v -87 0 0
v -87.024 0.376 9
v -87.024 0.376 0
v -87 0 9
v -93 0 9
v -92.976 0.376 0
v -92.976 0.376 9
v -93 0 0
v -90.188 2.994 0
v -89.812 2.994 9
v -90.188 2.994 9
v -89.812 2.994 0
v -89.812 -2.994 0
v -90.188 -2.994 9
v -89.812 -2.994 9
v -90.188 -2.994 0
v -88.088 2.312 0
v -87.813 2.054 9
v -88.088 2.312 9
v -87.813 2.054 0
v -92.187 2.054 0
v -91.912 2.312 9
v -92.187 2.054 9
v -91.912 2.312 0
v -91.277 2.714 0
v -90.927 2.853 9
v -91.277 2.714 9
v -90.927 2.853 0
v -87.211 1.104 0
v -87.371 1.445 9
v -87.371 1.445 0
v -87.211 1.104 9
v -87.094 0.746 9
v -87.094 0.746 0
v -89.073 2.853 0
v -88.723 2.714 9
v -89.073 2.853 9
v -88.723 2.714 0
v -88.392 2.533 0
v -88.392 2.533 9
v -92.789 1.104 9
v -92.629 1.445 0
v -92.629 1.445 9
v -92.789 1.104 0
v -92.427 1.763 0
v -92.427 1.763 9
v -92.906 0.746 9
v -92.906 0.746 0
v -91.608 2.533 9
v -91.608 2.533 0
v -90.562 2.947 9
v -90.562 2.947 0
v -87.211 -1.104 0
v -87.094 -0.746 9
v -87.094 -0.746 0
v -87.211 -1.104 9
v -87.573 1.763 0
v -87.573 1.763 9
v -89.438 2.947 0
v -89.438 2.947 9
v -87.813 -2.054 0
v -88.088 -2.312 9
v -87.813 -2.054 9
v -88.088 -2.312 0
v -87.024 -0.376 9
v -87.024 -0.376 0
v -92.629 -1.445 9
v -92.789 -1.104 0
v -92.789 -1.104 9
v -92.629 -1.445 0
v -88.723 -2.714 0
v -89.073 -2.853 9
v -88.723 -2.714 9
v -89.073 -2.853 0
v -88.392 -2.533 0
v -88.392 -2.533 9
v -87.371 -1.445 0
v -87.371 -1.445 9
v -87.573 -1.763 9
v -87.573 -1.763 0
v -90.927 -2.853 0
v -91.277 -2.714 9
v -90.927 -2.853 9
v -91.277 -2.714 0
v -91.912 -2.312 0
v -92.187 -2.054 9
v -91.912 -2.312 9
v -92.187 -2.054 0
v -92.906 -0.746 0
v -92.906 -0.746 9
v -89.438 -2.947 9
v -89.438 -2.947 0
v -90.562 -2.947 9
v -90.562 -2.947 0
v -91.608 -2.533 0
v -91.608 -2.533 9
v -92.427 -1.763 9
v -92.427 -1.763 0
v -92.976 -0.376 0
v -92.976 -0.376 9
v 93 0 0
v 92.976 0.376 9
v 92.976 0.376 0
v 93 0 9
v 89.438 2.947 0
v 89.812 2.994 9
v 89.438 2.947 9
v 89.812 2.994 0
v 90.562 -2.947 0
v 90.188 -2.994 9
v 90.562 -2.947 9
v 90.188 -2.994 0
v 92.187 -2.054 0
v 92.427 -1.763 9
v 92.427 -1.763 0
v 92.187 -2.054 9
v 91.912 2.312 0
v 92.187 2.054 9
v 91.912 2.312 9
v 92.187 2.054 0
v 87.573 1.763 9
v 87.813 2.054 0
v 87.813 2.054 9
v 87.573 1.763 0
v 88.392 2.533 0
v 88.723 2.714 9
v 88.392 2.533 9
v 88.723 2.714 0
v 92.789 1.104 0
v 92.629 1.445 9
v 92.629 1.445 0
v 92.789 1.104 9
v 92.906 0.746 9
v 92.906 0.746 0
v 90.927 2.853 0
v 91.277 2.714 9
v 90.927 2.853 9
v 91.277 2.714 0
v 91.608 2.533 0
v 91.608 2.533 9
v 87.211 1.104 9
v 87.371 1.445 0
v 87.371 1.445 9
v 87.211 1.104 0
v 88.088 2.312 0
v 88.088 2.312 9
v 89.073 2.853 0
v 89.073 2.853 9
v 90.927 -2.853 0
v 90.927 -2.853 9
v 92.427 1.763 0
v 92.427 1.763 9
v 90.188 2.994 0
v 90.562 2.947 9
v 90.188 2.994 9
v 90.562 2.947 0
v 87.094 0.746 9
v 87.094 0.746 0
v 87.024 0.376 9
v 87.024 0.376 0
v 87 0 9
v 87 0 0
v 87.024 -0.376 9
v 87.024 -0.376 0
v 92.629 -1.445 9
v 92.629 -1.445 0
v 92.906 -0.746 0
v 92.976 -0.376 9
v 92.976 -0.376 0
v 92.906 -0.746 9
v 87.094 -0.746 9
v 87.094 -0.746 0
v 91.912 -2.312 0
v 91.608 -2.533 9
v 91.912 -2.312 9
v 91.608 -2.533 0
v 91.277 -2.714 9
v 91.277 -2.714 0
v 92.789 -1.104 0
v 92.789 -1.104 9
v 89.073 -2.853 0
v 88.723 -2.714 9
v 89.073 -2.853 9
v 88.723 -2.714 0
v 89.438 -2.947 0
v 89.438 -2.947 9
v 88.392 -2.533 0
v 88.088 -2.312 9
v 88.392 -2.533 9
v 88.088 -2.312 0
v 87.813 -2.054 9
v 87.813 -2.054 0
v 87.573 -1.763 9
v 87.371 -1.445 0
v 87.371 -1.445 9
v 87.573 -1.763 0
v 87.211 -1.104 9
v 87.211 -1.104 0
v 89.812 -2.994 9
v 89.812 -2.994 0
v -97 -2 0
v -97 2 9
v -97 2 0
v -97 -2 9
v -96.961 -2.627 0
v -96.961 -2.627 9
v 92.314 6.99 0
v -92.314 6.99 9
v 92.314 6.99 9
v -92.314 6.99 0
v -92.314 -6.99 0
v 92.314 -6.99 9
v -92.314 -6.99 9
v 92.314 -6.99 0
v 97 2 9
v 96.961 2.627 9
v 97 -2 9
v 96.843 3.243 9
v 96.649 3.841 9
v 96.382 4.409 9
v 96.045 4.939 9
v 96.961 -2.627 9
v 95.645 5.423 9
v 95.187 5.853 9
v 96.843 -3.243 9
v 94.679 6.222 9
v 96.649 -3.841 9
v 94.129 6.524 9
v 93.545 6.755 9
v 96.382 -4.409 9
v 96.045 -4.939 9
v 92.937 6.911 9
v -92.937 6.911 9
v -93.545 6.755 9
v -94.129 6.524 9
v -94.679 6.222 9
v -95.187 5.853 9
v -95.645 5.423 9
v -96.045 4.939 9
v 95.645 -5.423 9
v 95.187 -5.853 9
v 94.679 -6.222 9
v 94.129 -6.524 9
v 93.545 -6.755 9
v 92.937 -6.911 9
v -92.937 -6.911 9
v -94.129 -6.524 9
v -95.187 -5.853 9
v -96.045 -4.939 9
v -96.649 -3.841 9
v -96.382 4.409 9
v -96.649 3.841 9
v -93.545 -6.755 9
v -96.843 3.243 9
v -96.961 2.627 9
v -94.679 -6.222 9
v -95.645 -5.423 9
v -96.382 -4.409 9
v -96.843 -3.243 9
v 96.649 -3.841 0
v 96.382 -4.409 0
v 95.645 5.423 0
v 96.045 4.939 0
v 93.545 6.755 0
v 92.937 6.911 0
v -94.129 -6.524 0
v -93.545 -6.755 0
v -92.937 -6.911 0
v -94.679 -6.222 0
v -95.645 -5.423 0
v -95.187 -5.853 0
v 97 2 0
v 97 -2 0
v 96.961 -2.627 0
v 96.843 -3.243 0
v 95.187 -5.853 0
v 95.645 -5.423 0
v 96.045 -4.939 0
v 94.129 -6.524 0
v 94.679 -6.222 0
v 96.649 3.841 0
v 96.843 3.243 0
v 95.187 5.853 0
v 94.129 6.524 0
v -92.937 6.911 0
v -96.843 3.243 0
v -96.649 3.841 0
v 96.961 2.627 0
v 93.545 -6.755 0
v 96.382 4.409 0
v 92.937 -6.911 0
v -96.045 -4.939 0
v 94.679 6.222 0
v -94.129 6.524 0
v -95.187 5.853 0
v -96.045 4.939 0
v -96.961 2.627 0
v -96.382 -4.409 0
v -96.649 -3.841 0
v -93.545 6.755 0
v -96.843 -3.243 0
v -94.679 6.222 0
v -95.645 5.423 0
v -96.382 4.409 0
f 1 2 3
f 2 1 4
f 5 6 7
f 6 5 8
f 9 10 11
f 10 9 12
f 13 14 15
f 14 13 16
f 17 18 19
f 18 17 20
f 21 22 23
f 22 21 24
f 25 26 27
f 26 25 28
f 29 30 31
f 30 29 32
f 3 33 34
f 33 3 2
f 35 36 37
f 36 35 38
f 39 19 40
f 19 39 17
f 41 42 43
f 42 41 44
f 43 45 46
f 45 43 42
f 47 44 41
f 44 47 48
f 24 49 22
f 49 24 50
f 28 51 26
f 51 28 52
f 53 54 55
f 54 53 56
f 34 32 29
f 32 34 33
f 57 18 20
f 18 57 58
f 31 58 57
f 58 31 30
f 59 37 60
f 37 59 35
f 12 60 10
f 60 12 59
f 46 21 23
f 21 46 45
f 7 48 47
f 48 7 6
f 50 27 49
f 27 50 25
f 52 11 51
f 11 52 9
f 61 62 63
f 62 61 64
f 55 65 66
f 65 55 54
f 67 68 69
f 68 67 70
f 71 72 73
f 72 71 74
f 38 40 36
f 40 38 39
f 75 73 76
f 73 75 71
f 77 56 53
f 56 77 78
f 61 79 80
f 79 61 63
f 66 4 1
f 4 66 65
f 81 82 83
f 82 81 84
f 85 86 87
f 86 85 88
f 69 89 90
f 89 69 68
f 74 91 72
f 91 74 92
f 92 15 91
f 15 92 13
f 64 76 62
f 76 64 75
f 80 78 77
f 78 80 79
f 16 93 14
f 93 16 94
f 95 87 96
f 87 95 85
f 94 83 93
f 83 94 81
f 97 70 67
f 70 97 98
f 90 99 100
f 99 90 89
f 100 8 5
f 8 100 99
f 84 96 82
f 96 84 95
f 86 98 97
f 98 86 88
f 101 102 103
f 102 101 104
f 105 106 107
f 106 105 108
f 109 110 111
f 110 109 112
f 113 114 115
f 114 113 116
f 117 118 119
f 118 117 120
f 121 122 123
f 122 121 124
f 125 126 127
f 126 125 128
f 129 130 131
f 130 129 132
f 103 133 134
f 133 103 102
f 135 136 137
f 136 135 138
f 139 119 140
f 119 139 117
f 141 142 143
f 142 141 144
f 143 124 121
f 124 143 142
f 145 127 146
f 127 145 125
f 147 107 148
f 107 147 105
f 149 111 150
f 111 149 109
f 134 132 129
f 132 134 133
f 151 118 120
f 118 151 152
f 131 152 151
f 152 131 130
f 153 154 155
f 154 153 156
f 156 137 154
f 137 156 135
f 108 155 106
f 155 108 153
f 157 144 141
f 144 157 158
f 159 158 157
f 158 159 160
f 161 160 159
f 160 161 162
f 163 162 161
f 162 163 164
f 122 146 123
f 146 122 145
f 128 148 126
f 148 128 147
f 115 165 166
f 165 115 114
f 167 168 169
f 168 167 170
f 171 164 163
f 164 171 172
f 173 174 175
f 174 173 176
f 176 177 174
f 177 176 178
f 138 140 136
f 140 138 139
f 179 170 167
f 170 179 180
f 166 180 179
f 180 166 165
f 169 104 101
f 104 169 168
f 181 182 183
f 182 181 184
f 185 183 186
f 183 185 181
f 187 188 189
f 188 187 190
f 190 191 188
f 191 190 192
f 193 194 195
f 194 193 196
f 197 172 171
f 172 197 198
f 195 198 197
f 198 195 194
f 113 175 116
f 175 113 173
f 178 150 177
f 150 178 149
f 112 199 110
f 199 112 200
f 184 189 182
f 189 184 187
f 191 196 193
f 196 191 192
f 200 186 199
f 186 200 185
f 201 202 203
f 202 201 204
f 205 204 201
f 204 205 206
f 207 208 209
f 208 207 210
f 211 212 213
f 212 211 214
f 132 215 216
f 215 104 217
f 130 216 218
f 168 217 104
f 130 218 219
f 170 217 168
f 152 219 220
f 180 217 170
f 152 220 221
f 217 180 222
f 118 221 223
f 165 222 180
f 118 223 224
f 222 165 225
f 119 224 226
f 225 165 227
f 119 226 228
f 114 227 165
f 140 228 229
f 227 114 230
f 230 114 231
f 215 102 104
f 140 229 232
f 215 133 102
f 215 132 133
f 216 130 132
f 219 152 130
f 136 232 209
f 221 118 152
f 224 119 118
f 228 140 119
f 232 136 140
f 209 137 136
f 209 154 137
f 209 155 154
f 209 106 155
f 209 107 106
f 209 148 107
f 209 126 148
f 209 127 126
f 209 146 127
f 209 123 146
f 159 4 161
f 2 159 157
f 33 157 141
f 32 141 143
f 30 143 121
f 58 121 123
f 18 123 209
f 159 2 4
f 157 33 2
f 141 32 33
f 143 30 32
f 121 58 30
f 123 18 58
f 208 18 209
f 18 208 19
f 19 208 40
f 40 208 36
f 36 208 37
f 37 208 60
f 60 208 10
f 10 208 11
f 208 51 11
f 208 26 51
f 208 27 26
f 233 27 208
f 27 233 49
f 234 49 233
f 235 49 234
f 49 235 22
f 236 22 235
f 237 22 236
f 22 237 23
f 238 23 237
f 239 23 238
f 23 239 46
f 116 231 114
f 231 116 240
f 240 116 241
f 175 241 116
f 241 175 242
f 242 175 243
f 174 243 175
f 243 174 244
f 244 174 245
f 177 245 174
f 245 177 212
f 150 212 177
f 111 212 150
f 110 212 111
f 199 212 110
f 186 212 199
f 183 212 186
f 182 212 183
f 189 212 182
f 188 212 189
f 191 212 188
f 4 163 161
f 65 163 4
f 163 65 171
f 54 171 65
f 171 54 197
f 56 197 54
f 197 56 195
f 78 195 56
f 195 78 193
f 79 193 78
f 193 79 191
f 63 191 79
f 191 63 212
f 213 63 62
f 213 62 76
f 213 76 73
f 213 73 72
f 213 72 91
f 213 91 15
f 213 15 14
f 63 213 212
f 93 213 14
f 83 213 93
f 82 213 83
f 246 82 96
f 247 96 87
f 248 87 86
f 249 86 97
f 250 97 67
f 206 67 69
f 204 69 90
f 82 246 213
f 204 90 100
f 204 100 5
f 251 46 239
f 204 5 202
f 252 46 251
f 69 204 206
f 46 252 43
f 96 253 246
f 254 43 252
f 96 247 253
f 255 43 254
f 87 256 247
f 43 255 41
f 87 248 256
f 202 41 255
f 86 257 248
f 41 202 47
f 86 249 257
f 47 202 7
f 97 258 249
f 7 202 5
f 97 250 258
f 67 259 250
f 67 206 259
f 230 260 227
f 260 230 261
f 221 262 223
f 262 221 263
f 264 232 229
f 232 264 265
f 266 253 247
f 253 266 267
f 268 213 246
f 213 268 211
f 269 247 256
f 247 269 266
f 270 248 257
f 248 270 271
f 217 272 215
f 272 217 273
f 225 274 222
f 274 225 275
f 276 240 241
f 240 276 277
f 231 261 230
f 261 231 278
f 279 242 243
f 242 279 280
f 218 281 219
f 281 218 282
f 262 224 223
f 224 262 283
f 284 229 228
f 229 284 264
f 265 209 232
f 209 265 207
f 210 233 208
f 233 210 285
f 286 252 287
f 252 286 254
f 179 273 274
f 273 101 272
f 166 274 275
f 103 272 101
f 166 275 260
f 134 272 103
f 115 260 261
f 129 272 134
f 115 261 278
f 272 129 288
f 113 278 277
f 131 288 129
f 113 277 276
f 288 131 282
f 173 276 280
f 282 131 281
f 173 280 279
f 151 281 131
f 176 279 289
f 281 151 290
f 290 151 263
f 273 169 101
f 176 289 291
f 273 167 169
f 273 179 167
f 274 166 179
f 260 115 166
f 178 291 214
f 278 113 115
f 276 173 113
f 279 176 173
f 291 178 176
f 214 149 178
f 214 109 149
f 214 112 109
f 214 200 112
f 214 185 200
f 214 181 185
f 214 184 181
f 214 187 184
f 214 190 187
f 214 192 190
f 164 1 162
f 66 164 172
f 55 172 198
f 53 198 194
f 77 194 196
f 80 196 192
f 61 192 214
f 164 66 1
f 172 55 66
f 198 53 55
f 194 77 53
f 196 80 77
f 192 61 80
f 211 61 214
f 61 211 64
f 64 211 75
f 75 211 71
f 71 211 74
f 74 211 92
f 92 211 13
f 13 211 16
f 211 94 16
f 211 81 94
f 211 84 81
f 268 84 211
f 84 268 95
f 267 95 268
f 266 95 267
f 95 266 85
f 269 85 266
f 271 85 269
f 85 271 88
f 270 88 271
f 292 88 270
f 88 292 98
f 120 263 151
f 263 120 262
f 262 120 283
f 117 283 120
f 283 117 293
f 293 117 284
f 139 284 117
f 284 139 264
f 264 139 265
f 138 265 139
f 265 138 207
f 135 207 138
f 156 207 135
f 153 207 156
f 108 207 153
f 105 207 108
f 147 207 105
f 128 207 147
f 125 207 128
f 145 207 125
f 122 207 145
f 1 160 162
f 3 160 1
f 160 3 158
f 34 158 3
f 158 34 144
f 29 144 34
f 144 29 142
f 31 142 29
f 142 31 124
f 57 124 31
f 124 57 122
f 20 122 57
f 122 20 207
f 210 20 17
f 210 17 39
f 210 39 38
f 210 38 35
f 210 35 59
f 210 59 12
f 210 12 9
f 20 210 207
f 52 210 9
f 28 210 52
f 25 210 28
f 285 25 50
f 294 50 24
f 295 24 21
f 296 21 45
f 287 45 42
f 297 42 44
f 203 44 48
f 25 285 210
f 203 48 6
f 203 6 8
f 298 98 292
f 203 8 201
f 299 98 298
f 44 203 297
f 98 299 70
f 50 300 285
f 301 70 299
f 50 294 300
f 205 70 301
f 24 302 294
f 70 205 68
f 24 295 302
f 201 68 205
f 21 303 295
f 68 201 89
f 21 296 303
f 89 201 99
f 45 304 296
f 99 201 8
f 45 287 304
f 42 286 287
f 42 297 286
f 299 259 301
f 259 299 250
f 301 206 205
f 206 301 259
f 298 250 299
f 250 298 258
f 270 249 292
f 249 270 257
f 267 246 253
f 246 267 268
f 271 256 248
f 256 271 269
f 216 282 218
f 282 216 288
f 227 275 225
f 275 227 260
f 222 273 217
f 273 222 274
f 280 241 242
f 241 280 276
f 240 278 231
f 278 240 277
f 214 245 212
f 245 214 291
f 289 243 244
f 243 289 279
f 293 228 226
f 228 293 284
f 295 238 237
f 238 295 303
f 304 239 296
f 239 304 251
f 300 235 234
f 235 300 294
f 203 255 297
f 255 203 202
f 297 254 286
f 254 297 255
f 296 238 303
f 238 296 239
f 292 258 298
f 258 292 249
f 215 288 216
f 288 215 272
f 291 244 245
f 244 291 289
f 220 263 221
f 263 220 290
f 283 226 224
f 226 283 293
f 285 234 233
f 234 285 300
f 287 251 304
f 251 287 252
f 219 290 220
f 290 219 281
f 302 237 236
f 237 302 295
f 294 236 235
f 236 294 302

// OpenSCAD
$fn = 50;


difference() {
	union() {
		hull() {
			translate(v = [-92.0000000000, 2.0000000000, 0]) {
				cylinder(h = 9, r = 5);
			}
			translate(v = [92.0000000000, 2.0000000000, 0]) {
				cylinder(h = 9, r = 5);
			}
			translate(v = [-92.0000000000, -2.0000000000, 0]) {
				cylinder(h = 9, r = 5);
			}
			translate(v = [92.0000000000, -2.0000000000, 0]) {
				cylinder(h = 9, r = 5);
			}
		}
	}
	union() {
		translate(v = [-90.0000000000, 0.0000000000, -100.0000000000]) {
			cylinder(h = 200, r = 3.0000000000);
		}
		translate(v = [-90.0000000000, 0.0000000000, -100.0000000000]) {
			cylinder(h = 200, r = 3.0000000000);
		}
		translate(v = [90.0000000000, 0.0000000000, -100.0000000000]) {
			cylinder(h = 200, r = 3.0000000000);
		}
		translate(v = [90.0000000000, 0.0000000000, -100.0000000000]) {
			cylinder(h = 200, r = 3.0000000000);
		}
	}
}
